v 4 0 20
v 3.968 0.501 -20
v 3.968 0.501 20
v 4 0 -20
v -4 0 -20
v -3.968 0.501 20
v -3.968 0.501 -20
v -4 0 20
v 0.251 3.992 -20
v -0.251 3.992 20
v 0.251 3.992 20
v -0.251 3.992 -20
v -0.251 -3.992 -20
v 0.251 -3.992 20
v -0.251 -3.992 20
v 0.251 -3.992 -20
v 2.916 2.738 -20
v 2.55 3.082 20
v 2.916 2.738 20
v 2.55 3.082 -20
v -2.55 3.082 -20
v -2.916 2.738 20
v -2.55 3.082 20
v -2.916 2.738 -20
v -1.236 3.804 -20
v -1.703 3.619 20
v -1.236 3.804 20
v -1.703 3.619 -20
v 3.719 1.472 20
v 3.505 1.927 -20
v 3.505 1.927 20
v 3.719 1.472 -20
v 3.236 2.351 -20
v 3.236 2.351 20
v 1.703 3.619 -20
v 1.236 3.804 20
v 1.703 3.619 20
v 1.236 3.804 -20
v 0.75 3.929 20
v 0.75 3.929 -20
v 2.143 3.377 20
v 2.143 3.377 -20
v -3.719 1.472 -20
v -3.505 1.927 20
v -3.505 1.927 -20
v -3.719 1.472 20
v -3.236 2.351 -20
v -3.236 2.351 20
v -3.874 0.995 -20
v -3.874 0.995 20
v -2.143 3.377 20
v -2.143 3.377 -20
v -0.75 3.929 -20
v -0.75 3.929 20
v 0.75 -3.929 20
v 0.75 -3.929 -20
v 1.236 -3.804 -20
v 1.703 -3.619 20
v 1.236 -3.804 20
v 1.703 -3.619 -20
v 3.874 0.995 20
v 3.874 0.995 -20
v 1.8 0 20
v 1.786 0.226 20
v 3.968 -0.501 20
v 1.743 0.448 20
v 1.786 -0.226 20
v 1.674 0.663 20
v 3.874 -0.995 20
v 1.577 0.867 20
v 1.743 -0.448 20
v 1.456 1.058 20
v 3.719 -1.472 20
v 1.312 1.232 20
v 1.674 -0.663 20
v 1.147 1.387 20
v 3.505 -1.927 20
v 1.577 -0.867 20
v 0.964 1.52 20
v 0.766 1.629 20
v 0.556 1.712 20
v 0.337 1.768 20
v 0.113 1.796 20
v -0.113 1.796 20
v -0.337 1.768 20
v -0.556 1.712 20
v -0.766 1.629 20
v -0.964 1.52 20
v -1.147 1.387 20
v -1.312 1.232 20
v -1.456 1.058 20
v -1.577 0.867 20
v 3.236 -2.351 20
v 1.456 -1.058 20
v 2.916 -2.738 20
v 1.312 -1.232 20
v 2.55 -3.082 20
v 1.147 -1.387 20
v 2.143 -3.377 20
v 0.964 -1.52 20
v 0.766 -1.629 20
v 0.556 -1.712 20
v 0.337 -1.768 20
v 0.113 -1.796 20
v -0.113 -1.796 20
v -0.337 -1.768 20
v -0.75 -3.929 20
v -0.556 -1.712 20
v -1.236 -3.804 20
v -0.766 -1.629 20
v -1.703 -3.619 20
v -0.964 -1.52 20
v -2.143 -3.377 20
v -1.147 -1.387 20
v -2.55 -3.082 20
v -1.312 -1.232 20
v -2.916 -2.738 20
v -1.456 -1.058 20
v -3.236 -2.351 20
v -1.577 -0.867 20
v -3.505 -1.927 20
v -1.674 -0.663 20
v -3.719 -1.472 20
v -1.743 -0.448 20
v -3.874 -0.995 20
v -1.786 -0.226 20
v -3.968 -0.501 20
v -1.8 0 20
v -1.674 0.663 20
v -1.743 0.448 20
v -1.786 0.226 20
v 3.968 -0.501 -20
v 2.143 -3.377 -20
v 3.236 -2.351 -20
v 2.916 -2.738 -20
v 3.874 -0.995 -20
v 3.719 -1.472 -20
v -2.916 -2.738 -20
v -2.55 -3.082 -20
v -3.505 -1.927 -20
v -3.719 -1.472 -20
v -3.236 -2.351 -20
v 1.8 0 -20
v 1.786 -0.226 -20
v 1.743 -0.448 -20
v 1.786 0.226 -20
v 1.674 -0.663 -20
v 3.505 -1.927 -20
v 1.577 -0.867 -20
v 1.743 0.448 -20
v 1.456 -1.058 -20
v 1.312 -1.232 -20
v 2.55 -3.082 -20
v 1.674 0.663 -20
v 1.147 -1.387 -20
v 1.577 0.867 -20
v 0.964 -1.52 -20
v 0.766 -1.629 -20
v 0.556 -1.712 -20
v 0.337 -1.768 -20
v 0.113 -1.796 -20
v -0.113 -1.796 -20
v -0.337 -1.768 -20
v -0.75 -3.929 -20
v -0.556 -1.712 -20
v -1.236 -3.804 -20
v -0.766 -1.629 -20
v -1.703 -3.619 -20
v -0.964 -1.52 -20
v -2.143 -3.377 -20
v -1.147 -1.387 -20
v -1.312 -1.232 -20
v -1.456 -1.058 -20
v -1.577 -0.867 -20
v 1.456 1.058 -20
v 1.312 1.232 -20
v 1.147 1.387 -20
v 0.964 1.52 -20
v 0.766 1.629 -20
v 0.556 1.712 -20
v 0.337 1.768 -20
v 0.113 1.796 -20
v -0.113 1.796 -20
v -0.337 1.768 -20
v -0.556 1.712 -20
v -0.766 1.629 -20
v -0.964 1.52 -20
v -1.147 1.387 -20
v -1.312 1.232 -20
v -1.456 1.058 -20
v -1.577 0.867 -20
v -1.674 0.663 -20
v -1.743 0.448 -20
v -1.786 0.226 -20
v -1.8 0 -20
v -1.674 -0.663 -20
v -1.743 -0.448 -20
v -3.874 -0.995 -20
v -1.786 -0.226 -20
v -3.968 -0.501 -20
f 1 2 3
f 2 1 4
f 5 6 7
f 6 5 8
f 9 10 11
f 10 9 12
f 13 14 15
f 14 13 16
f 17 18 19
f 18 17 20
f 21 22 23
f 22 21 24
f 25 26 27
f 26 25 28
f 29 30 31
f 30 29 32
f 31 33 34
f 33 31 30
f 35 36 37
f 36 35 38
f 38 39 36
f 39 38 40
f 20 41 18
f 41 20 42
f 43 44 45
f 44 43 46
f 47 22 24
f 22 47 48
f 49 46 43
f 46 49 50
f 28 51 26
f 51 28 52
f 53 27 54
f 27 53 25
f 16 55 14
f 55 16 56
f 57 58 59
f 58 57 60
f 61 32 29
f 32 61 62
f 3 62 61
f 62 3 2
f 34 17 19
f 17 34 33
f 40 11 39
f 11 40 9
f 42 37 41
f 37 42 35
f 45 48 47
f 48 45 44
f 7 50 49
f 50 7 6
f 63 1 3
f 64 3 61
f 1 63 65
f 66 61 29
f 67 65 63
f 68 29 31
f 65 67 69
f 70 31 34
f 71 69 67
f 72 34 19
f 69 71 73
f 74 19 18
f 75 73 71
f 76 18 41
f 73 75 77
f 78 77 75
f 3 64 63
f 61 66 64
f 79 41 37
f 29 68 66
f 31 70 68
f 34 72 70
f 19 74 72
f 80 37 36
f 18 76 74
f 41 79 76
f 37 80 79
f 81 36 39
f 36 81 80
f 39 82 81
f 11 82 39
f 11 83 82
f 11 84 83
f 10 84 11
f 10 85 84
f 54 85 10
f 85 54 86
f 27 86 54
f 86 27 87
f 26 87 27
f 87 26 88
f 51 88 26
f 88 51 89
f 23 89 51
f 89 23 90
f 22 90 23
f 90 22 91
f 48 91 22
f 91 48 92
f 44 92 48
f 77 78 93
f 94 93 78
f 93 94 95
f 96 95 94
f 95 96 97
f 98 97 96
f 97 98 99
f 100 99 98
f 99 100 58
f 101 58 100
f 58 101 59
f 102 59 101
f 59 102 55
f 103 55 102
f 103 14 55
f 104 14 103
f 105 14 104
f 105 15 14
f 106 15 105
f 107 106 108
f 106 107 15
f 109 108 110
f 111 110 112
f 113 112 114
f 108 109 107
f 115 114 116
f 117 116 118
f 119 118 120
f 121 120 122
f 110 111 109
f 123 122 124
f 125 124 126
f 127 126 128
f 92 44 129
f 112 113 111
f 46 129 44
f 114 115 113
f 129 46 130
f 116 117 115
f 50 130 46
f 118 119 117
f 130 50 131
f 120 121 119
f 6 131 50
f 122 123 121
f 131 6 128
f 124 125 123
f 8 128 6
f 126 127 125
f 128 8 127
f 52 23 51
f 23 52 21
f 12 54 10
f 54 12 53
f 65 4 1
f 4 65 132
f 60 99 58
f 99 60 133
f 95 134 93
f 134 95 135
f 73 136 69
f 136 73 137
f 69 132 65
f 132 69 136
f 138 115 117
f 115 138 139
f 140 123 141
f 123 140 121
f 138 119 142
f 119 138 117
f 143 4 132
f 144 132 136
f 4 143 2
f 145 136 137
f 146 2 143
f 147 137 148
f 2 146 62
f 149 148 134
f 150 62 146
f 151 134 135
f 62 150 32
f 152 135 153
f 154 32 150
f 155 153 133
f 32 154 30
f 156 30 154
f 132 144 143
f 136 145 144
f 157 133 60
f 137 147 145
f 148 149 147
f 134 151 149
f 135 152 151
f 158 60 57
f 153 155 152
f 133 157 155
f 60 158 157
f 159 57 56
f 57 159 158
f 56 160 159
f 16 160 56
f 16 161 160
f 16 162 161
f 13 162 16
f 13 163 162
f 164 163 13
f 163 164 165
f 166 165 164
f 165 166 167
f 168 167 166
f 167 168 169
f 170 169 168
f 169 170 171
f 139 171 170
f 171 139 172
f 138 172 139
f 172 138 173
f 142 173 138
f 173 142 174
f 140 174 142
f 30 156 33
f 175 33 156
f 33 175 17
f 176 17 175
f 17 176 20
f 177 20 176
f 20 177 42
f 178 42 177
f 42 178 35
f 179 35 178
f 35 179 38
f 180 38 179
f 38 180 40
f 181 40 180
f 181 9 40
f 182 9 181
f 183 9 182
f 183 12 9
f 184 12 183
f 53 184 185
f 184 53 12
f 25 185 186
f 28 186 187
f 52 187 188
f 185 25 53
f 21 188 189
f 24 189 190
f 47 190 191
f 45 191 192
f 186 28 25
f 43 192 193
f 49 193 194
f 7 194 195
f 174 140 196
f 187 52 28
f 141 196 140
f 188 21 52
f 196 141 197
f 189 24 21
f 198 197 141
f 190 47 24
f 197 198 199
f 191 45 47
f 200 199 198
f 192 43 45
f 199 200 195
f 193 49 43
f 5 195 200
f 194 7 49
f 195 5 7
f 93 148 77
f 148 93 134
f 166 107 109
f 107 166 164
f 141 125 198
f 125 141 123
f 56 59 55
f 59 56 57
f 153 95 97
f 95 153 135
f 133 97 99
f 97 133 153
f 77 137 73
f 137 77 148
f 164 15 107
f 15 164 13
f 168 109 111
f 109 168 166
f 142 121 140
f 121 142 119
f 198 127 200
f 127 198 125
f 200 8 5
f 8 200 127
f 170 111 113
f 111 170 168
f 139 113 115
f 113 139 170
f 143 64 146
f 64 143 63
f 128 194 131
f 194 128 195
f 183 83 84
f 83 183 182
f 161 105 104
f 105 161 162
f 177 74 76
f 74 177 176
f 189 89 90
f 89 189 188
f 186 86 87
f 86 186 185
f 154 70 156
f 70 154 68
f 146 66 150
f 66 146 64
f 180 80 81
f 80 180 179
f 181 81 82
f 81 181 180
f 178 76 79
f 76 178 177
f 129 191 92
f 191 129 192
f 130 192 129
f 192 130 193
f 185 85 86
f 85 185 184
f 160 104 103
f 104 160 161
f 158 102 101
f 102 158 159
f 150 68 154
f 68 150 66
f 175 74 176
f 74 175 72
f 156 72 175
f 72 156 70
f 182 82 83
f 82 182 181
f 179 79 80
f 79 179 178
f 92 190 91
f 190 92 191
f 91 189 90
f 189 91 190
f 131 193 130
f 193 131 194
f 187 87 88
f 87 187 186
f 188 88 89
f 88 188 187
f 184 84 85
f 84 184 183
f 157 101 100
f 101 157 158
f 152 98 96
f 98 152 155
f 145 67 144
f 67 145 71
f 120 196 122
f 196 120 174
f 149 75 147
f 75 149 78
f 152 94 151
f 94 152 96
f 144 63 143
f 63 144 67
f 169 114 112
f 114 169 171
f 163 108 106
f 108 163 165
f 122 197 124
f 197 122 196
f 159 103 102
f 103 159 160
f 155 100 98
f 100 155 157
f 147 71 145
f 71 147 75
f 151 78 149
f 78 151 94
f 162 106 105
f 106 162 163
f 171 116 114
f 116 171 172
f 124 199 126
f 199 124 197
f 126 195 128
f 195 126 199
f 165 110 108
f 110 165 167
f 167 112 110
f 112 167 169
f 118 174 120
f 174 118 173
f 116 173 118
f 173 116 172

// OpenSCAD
$fn = 50;


difference() {
	union() {
		translate(v = [0, 0, -20.0000000000]) {
			cylinder(h = 40, r = 4.0000000000);
		}
	}
	union() {
		#translate(v = [0, 0, -100.0000000000]) {
			cylinder(h = 200, r = 1.8000000000);
		}
	}
}
